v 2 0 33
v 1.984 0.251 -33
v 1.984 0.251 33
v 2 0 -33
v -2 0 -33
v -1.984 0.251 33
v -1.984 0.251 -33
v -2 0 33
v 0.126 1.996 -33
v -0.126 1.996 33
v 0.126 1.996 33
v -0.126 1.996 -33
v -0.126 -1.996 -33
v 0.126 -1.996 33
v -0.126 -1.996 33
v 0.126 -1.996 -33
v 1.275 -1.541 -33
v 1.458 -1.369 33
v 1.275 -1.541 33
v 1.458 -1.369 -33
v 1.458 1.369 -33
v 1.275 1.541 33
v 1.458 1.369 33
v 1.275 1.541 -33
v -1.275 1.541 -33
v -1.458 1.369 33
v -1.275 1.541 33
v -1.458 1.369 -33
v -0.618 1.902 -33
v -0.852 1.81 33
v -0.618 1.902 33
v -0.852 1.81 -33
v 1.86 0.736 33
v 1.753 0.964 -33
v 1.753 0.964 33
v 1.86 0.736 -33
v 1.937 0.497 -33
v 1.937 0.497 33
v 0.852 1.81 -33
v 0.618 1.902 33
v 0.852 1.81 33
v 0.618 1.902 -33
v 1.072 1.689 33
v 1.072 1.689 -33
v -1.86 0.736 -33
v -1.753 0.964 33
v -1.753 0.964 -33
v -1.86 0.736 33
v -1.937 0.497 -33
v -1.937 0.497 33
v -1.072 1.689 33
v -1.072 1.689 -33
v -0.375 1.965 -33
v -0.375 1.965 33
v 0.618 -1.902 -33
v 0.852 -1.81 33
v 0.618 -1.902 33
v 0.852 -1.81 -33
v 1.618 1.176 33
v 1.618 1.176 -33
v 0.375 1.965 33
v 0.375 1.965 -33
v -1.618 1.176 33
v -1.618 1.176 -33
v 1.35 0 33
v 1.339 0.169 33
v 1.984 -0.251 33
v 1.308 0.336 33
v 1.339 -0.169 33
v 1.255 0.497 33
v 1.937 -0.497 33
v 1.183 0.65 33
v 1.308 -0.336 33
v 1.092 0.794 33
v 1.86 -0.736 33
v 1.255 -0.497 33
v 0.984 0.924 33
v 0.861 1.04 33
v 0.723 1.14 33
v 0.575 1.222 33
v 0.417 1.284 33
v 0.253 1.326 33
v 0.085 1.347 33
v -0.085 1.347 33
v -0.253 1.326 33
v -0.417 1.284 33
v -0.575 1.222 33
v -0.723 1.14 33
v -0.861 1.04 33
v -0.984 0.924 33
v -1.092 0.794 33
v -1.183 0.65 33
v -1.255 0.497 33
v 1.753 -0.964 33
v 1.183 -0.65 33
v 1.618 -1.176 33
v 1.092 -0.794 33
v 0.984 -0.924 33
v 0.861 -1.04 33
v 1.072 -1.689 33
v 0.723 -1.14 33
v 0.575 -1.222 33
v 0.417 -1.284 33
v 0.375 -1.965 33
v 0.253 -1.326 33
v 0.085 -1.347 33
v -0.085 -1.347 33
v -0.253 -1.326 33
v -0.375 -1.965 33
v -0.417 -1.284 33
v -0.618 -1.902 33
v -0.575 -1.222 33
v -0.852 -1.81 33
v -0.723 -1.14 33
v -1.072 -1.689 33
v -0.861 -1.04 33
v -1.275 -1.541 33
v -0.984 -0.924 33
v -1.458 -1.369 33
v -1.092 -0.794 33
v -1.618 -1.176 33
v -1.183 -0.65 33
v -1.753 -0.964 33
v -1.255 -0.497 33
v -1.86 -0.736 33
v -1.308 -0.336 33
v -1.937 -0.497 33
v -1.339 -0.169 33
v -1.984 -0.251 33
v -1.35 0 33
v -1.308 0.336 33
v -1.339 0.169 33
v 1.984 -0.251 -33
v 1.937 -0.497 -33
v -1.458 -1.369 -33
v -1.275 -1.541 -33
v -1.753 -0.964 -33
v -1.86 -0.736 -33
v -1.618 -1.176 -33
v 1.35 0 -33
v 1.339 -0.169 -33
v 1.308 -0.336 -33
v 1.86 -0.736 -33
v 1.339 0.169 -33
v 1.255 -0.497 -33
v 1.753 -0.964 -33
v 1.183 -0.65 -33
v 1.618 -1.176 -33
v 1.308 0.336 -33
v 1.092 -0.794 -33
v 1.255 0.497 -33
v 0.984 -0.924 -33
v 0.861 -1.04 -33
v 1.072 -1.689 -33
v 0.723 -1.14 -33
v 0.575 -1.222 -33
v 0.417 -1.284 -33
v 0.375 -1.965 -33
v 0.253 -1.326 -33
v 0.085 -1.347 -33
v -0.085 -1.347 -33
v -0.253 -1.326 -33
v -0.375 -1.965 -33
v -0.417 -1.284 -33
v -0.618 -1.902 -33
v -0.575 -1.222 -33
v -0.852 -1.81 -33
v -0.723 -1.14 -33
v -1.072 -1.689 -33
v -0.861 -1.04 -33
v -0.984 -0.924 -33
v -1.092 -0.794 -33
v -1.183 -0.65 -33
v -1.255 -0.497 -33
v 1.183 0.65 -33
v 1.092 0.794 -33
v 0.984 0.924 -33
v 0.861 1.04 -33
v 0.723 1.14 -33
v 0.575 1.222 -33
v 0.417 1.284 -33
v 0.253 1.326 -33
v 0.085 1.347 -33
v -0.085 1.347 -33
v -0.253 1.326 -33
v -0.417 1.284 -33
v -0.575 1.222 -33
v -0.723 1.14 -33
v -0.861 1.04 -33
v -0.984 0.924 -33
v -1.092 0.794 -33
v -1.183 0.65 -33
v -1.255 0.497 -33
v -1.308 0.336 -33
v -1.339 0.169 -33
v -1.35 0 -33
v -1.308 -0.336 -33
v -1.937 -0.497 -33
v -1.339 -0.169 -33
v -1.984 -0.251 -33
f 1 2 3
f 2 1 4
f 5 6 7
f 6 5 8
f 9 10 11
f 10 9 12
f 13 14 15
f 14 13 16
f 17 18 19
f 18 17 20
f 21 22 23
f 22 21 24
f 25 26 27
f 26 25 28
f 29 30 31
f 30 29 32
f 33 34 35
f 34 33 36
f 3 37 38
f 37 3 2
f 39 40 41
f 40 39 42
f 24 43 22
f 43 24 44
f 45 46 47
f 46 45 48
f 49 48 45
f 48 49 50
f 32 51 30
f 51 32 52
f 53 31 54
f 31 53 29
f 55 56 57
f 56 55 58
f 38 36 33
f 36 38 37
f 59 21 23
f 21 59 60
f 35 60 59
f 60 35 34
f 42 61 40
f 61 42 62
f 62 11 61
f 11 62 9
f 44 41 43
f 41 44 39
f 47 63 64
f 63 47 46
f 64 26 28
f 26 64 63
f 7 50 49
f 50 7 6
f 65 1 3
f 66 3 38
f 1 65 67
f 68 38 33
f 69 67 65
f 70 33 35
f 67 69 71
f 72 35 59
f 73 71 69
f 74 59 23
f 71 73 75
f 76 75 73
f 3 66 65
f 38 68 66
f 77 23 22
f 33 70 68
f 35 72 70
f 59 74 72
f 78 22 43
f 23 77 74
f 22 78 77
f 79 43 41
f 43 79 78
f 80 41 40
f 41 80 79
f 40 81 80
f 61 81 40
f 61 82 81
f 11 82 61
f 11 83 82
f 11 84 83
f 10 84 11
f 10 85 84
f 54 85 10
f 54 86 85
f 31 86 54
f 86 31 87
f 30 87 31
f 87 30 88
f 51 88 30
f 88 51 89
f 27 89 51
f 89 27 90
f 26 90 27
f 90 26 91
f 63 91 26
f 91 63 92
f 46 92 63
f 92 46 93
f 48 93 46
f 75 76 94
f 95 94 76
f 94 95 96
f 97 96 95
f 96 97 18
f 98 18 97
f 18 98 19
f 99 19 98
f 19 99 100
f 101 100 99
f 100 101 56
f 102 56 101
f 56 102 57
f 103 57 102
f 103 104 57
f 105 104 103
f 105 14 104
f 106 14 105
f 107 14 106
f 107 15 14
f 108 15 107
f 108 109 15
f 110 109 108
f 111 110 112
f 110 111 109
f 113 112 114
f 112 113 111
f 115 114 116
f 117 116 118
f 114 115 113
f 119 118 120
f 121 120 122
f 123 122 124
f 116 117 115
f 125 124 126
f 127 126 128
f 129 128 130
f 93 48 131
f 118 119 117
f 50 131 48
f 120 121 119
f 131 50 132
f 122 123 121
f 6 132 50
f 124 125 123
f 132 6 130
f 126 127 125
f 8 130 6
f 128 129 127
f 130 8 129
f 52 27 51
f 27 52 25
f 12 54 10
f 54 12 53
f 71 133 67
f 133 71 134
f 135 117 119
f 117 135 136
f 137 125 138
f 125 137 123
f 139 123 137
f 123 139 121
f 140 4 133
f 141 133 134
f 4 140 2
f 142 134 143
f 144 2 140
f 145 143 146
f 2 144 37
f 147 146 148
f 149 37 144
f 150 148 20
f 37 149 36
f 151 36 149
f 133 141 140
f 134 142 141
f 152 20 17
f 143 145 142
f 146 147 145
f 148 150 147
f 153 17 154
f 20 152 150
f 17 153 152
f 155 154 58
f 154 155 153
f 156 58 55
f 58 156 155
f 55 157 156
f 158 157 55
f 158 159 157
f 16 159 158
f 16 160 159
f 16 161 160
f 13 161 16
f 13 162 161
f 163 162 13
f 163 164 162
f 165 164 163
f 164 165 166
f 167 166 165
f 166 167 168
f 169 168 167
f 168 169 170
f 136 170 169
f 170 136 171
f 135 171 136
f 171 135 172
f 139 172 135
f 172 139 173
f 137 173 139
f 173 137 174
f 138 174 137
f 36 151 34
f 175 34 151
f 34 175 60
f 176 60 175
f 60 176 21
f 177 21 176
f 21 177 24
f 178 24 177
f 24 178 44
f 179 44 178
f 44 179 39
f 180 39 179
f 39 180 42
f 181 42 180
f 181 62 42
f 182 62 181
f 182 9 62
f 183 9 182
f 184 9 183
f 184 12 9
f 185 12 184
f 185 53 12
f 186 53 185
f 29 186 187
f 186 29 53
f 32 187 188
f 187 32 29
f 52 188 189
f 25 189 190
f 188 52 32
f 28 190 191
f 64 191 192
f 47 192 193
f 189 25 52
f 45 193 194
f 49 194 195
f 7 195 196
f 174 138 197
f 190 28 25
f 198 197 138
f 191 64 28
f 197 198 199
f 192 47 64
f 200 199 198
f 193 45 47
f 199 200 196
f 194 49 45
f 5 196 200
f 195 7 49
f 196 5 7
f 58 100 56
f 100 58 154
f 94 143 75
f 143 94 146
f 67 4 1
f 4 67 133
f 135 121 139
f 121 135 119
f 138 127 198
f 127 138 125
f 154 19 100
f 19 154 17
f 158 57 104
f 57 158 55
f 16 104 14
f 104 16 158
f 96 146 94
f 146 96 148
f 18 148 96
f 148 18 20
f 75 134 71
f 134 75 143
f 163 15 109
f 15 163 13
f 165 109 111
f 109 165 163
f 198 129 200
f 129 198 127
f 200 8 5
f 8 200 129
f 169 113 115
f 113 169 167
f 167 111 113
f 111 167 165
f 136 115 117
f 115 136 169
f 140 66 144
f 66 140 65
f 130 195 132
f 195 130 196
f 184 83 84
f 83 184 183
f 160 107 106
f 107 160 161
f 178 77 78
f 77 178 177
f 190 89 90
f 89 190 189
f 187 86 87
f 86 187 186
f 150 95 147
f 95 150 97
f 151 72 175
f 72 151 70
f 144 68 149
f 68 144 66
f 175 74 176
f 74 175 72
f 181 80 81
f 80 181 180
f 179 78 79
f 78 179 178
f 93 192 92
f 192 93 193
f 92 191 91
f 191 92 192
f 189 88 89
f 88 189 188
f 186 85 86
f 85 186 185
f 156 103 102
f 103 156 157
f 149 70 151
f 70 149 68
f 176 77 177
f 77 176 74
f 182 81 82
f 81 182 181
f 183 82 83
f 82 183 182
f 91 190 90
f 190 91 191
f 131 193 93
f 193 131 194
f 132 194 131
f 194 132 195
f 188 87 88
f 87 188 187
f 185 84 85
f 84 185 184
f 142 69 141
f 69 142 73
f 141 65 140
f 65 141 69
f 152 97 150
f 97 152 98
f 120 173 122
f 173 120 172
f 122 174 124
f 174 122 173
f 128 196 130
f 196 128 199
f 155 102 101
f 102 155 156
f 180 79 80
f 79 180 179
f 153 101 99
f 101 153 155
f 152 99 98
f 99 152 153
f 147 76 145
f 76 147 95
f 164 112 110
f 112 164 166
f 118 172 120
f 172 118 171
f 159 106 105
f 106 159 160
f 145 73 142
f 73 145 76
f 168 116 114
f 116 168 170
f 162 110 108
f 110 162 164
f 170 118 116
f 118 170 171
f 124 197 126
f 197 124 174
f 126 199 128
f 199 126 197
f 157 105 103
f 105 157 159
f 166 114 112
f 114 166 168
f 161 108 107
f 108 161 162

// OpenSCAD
$fn = 50;


difference() {
	union() {
		translate(v = [0, 0, -33.0000000000]) {
			cylinder(h = 66, r = 2.0000000000);
		}
	}
	union() {
		translate(v = [0, 0, -100.0000000000]) {
			cylinder(h = 200, r = 1.3500000000);
		}
	}
}
